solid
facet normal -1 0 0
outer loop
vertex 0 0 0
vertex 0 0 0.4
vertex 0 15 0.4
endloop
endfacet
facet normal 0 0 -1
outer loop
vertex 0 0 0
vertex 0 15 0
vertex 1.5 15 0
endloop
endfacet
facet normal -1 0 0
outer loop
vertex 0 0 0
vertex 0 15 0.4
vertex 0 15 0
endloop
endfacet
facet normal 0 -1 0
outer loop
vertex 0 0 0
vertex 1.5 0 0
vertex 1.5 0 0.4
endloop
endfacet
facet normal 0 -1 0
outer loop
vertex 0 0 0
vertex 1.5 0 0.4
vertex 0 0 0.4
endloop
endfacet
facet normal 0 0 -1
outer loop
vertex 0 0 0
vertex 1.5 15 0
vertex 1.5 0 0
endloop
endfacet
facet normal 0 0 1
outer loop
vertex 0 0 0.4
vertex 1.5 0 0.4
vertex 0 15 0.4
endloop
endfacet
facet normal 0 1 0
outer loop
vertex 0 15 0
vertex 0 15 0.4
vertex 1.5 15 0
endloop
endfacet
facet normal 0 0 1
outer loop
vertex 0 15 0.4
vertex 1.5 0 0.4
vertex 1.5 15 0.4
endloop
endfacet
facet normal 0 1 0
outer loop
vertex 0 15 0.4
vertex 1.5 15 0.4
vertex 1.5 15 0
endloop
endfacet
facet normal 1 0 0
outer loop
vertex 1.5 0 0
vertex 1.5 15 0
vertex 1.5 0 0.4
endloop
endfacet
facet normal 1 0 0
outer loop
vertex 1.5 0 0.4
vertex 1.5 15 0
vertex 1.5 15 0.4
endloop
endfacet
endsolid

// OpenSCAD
/* Warning, this is a very basic generator with a lot of approximation 
input data : [X2SON, X9X, 1.5x15.x0.4mm, 6, , A, C04-00215A]
generated by com.zoubworld.electronics.cad.model3d.Basic
Date : Sun Feb 15 10:50:48 CET 2026
*/

//body
color("black")
translate([0,0,0])
cube([1.5,15.0,0.4], center=false);
